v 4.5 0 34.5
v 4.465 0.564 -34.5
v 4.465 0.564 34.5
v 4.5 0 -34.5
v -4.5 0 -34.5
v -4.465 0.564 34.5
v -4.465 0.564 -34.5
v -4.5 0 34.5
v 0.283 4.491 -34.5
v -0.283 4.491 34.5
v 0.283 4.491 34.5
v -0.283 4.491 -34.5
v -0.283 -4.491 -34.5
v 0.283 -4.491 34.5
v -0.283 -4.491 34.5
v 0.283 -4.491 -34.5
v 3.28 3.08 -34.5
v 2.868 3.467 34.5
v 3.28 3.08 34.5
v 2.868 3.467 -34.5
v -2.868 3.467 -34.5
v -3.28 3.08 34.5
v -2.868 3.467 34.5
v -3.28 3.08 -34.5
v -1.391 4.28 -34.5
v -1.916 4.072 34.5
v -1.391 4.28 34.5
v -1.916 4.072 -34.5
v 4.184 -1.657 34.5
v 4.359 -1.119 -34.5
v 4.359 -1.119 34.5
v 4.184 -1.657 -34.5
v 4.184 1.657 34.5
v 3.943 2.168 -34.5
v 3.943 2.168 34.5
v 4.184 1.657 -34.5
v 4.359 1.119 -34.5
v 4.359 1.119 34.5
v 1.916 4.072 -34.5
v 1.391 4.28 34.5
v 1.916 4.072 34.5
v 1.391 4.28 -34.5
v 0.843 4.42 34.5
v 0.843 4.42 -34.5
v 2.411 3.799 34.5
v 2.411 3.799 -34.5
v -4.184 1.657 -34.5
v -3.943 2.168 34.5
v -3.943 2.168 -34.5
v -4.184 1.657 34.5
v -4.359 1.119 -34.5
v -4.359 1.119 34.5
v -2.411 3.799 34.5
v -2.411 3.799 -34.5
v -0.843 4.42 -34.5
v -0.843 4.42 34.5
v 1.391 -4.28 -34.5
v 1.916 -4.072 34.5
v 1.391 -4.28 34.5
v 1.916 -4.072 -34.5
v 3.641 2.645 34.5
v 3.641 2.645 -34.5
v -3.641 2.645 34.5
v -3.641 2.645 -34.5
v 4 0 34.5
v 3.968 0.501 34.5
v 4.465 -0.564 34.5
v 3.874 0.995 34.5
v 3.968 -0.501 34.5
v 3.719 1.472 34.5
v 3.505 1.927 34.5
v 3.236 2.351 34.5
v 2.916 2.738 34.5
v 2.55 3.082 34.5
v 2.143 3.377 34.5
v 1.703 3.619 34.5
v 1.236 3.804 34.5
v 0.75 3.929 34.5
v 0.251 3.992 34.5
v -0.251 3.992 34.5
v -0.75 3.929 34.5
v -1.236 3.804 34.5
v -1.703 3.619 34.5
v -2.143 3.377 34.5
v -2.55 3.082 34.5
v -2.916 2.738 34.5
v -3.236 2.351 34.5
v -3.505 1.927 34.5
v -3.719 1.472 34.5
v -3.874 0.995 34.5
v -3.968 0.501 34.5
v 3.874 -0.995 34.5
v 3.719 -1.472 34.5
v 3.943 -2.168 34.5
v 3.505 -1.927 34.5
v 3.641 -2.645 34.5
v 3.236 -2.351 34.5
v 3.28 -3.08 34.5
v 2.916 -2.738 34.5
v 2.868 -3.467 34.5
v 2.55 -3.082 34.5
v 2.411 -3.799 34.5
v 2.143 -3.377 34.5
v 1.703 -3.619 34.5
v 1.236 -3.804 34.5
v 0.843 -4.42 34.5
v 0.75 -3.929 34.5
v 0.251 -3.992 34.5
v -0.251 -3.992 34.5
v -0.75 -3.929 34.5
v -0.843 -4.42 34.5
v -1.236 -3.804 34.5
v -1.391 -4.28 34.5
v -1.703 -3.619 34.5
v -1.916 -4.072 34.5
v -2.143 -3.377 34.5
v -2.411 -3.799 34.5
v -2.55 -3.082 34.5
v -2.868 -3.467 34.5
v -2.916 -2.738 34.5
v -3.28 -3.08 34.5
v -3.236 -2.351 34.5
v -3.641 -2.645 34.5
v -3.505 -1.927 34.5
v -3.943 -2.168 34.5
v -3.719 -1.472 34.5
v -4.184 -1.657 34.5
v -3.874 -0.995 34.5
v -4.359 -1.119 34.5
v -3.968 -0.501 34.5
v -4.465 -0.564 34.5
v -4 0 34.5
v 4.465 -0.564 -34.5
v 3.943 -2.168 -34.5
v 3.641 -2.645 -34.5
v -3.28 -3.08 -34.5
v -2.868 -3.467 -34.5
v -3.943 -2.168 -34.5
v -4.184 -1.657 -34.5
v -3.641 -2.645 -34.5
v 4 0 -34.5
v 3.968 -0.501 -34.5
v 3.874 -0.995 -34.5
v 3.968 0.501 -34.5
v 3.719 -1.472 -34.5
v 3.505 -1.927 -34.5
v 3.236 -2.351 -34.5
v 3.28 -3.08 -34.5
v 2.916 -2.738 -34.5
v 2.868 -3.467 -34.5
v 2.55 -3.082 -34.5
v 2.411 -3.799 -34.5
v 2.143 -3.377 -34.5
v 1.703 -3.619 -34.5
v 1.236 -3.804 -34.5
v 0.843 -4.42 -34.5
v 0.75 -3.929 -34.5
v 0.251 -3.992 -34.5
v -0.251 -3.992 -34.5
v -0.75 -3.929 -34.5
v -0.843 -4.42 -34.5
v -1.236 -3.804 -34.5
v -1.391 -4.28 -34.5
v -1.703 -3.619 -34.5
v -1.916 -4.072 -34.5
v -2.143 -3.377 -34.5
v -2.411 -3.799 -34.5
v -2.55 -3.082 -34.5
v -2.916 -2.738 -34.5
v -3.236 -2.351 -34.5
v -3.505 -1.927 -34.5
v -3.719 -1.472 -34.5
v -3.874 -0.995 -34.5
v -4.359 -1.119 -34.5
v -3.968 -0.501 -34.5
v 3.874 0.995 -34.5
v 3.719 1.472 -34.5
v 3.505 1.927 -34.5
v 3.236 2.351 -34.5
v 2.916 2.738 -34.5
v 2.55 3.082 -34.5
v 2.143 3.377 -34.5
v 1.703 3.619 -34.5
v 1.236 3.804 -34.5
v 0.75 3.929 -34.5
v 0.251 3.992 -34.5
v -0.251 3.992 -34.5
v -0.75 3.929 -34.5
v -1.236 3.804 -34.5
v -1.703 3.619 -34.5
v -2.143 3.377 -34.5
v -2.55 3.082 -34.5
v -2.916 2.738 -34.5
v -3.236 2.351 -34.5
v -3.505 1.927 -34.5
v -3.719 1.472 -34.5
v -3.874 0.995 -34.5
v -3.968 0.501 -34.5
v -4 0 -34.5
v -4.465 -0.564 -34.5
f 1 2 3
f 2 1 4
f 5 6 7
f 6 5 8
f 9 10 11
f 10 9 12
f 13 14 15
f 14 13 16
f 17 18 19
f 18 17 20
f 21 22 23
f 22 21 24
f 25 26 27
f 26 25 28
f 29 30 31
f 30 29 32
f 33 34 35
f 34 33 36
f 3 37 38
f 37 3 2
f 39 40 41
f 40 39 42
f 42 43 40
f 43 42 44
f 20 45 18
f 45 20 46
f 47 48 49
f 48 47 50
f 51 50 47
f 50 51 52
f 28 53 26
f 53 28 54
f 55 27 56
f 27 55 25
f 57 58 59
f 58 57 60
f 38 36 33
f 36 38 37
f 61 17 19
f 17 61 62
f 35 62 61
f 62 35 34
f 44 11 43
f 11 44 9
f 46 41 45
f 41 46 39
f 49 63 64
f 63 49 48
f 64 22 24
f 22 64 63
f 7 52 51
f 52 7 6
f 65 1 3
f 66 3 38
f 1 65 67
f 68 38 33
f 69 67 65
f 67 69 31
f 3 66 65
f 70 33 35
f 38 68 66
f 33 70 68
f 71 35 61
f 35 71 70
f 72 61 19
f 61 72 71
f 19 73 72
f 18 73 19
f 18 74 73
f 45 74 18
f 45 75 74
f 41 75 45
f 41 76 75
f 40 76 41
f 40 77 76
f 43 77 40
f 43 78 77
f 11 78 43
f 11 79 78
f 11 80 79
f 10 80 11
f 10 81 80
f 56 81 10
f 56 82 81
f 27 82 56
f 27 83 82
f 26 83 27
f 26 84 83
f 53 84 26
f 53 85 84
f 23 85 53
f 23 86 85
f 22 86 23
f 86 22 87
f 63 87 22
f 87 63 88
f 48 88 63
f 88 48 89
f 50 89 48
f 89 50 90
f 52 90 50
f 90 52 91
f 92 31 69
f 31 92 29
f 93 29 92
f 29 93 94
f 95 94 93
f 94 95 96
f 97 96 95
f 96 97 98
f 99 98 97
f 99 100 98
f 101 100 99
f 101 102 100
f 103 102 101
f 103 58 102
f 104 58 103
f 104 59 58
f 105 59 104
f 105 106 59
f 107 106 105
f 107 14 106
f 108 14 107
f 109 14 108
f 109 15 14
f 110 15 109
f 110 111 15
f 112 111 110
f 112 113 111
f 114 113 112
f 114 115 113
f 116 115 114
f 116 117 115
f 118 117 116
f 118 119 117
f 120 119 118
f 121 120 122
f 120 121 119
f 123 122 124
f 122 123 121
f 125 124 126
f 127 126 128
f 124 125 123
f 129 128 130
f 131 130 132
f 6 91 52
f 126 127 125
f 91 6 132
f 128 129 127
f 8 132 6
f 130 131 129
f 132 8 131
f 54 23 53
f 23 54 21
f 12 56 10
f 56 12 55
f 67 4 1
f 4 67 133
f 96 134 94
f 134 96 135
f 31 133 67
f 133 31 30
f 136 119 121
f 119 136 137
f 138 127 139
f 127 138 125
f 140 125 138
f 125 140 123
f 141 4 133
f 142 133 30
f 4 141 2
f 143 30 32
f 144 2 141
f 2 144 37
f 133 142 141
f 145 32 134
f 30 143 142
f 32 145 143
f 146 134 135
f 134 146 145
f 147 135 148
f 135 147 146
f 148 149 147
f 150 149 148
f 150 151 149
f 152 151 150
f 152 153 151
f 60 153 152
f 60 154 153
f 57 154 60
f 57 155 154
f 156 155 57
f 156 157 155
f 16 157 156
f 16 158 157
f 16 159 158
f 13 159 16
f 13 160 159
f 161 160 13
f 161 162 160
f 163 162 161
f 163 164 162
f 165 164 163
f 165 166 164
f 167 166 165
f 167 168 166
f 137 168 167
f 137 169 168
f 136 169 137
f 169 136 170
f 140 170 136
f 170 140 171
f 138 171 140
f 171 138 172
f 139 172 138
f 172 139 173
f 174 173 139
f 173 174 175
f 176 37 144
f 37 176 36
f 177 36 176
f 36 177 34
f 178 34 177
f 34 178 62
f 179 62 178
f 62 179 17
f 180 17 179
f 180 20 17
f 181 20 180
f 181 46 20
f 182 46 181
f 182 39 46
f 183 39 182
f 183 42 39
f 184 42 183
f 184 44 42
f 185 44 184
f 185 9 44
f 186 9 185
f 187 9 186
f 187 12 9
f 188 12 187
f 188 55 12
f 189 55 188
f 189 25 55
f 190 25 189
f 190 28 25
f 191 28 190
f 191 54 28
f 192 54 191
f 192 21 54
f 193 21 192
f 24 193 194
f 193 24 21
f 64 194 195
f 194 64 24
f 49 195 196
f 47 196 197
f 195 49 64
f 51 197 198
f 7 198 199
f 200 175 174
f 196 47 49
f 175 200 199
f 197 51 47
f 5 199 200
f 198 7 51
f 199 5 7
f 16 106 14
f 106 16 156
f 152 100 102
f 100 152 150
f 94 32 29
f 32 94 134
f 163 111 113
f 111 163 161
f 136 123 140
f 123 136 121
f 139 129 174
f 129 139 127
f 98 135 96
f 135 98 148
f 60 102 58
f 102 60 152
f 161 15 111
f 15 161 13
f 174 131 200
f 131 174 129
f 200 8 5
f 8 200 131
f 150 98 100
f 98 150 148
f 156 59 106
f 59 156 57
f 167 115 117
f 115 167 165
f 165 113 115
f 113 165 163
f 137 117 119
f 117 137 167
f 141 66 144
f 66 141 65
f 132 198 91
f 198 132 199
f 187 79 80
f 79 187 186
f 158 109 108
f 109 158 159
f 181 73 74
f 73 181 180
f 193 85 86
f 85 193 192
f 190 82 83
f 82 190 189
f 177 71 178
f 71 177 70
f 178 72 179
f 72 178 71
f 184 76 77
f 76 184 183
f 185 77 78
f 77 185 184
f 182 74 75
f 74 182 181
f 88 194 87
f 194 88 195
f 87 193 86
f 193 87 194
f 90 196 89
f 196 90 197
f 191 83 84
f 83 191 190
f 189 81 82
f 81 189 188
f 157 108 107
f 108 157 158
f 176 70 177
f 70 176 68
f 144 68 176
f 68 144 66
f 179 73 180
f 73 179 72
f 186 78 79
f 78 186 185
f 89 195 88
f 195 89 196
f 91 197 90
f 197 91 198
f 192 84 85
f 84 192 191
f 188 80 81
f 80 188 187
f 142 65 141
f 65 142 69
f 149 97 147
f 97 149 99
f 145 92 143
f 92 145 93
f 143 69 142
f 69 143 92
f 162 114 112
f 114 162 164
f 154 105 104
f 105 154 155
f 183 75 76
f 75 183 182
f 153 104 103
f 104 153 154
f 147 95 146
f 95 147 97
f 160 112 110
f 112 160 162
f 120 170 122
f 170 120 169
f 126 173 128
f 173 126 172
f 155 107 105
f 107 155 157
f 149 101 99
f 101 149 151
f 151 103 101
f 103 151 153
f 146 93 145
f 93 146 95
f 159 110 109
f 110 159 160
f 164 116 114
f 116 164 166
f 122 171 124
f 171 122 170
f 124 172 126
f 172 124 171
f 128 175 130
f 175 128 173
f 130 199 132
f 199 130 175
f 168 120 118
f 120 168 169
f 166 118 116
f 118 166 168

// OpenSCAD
$fn = 50;


difference() {
	union() {
		translate(v = [0, 0, -34.5000000000]) {
			cylinder(h = 69, r = 4.5000000000);
		}
	}
	union() {
		translate(v = [0, 0, -100.0000000000]) {
			cylinder(h = 200, r = 4.0000000000);
		}
	}
}
